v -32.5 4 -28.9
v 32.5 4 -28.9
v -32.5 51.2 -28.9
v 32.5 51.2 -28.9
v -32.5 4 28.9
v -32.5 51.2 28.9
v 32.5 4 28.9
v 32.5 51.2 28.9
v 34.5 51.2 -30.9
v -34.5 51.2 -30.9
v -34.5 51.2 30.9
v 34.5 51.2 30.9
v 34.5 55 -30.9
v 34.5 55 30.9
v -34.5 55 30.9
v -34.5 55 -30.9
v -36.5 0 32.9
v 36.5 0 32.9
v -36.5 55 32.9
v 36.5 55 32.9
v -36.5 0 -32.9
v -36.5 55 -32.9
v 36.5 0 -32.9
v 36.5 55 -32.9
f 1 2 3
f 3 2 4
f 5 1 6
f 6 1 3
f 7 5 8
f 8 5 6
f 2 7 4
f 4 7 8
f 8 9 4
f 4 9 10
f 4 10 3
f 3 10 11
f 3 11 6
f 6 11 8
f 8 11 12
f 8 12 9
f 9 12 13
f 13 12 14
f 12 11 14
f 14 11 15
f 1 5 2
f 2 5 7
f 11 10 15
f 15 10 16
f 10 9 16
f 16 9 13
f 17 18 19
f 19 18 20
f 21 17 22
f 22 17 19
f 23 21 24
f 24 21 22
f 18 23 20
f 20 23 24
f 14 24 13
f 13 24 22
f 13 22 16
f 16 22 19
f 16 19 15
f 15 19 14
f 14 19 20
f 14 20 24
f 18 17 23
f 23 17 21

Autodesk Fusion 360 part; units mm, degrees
sketch "base" plane through (0, 0, 0) normal (0, 1, 0) x (1, 0, 0)
  line L0 (36.5, -32.9) -> (-36.5, -32.9)
  line L1 (-36.5, -32.9) -> (-36.5, -30.9)
  line L2 (-36.5, -30.9) -> (36.5, -30.9)
  line L3 (36.5, -30.9) -> (36.5, -32.9)
  line L4 (36.5, 32.9) -> (-36.5, 32.9)
  line L5 (-36.5, 32.9) -> (-36.5, 30.9)
  line L6 (-36.5, 30.9) -> (36.5, 30.9)
  line L7 (36.5, 30.9) -> (36.5, 32.9)
  line L8 (36.5, -30.9) -> (34.5, -30.9)
  line L9 (34.5, -30.9) -> (34.5, 30.9)
  line L10 (34.5, 30.9) -> (36.5, 30.9)
  line L11 (36.5, 30.9) -> (36.5, -30.9)
  line L12 (0, -49.6148) -> (0, 45.2004) construction
  line L13 (54.9351, 0) -> (-34.717, 0) construction
  line L14 (-36.5, -30.9) -> (-34.5, -30.9)
  line L15 (-34.5, -30.9) -> (-34.5, 30.9)
  line L16 (-34.5, 30.9) -> (-36.5, 30.9)
  line L17 (-36.5, 30.9) -> (-36.5, -30.9)
  dimension "d1" = 2
  dimension "d2" = 73
  dimension "d3" = 65.8
extrude "Extrude1" add sketch "base" along normal blind 55 contours L0 L1 L2 L3 L8 L14 | L2 L6 L8 L9 L10 L11 | L2 L6 L14 L15 L16 L17 | L4 L5 L6 L7 L10 L16 makes body 1
extrude "Extrude2" add sketch "base" along normal blind 4 separate body contours L2 L6 L9 L15 makes body 2
sketch "Sketch3" plane through (0, 4, 0) normal (0, 1, 0) x (-1, 0, 0)
  line L0 (-34.5, 30.9) -> (-34.5, -30.9)
  line L1 (-34.5, -30.9) -> (34.5, -30.9)
  line L2 (34.5, -30.9) -> (34.5, 30.9)
  line L3 (34.5, 30.9) -> (-34.5, 30.9)
  line L4 (-32.5, -28.9) -> (32.5, -28.9)
  line L5 (32.5, -28.9) -> (32.5, 28.9)
  line L6 (32.5, 28.9) -> (-32.5, 28.9)
  line L7 (-32.5, 28.9) -> (-32.5, -28.9)
  dimension "d16" = -2
extrude "Extrude5" add sketch "Sketch3" along normal blind 47.2 bodies 1 2
equation "d17 = 56 mm - 3.8 mm - 5 mm"
